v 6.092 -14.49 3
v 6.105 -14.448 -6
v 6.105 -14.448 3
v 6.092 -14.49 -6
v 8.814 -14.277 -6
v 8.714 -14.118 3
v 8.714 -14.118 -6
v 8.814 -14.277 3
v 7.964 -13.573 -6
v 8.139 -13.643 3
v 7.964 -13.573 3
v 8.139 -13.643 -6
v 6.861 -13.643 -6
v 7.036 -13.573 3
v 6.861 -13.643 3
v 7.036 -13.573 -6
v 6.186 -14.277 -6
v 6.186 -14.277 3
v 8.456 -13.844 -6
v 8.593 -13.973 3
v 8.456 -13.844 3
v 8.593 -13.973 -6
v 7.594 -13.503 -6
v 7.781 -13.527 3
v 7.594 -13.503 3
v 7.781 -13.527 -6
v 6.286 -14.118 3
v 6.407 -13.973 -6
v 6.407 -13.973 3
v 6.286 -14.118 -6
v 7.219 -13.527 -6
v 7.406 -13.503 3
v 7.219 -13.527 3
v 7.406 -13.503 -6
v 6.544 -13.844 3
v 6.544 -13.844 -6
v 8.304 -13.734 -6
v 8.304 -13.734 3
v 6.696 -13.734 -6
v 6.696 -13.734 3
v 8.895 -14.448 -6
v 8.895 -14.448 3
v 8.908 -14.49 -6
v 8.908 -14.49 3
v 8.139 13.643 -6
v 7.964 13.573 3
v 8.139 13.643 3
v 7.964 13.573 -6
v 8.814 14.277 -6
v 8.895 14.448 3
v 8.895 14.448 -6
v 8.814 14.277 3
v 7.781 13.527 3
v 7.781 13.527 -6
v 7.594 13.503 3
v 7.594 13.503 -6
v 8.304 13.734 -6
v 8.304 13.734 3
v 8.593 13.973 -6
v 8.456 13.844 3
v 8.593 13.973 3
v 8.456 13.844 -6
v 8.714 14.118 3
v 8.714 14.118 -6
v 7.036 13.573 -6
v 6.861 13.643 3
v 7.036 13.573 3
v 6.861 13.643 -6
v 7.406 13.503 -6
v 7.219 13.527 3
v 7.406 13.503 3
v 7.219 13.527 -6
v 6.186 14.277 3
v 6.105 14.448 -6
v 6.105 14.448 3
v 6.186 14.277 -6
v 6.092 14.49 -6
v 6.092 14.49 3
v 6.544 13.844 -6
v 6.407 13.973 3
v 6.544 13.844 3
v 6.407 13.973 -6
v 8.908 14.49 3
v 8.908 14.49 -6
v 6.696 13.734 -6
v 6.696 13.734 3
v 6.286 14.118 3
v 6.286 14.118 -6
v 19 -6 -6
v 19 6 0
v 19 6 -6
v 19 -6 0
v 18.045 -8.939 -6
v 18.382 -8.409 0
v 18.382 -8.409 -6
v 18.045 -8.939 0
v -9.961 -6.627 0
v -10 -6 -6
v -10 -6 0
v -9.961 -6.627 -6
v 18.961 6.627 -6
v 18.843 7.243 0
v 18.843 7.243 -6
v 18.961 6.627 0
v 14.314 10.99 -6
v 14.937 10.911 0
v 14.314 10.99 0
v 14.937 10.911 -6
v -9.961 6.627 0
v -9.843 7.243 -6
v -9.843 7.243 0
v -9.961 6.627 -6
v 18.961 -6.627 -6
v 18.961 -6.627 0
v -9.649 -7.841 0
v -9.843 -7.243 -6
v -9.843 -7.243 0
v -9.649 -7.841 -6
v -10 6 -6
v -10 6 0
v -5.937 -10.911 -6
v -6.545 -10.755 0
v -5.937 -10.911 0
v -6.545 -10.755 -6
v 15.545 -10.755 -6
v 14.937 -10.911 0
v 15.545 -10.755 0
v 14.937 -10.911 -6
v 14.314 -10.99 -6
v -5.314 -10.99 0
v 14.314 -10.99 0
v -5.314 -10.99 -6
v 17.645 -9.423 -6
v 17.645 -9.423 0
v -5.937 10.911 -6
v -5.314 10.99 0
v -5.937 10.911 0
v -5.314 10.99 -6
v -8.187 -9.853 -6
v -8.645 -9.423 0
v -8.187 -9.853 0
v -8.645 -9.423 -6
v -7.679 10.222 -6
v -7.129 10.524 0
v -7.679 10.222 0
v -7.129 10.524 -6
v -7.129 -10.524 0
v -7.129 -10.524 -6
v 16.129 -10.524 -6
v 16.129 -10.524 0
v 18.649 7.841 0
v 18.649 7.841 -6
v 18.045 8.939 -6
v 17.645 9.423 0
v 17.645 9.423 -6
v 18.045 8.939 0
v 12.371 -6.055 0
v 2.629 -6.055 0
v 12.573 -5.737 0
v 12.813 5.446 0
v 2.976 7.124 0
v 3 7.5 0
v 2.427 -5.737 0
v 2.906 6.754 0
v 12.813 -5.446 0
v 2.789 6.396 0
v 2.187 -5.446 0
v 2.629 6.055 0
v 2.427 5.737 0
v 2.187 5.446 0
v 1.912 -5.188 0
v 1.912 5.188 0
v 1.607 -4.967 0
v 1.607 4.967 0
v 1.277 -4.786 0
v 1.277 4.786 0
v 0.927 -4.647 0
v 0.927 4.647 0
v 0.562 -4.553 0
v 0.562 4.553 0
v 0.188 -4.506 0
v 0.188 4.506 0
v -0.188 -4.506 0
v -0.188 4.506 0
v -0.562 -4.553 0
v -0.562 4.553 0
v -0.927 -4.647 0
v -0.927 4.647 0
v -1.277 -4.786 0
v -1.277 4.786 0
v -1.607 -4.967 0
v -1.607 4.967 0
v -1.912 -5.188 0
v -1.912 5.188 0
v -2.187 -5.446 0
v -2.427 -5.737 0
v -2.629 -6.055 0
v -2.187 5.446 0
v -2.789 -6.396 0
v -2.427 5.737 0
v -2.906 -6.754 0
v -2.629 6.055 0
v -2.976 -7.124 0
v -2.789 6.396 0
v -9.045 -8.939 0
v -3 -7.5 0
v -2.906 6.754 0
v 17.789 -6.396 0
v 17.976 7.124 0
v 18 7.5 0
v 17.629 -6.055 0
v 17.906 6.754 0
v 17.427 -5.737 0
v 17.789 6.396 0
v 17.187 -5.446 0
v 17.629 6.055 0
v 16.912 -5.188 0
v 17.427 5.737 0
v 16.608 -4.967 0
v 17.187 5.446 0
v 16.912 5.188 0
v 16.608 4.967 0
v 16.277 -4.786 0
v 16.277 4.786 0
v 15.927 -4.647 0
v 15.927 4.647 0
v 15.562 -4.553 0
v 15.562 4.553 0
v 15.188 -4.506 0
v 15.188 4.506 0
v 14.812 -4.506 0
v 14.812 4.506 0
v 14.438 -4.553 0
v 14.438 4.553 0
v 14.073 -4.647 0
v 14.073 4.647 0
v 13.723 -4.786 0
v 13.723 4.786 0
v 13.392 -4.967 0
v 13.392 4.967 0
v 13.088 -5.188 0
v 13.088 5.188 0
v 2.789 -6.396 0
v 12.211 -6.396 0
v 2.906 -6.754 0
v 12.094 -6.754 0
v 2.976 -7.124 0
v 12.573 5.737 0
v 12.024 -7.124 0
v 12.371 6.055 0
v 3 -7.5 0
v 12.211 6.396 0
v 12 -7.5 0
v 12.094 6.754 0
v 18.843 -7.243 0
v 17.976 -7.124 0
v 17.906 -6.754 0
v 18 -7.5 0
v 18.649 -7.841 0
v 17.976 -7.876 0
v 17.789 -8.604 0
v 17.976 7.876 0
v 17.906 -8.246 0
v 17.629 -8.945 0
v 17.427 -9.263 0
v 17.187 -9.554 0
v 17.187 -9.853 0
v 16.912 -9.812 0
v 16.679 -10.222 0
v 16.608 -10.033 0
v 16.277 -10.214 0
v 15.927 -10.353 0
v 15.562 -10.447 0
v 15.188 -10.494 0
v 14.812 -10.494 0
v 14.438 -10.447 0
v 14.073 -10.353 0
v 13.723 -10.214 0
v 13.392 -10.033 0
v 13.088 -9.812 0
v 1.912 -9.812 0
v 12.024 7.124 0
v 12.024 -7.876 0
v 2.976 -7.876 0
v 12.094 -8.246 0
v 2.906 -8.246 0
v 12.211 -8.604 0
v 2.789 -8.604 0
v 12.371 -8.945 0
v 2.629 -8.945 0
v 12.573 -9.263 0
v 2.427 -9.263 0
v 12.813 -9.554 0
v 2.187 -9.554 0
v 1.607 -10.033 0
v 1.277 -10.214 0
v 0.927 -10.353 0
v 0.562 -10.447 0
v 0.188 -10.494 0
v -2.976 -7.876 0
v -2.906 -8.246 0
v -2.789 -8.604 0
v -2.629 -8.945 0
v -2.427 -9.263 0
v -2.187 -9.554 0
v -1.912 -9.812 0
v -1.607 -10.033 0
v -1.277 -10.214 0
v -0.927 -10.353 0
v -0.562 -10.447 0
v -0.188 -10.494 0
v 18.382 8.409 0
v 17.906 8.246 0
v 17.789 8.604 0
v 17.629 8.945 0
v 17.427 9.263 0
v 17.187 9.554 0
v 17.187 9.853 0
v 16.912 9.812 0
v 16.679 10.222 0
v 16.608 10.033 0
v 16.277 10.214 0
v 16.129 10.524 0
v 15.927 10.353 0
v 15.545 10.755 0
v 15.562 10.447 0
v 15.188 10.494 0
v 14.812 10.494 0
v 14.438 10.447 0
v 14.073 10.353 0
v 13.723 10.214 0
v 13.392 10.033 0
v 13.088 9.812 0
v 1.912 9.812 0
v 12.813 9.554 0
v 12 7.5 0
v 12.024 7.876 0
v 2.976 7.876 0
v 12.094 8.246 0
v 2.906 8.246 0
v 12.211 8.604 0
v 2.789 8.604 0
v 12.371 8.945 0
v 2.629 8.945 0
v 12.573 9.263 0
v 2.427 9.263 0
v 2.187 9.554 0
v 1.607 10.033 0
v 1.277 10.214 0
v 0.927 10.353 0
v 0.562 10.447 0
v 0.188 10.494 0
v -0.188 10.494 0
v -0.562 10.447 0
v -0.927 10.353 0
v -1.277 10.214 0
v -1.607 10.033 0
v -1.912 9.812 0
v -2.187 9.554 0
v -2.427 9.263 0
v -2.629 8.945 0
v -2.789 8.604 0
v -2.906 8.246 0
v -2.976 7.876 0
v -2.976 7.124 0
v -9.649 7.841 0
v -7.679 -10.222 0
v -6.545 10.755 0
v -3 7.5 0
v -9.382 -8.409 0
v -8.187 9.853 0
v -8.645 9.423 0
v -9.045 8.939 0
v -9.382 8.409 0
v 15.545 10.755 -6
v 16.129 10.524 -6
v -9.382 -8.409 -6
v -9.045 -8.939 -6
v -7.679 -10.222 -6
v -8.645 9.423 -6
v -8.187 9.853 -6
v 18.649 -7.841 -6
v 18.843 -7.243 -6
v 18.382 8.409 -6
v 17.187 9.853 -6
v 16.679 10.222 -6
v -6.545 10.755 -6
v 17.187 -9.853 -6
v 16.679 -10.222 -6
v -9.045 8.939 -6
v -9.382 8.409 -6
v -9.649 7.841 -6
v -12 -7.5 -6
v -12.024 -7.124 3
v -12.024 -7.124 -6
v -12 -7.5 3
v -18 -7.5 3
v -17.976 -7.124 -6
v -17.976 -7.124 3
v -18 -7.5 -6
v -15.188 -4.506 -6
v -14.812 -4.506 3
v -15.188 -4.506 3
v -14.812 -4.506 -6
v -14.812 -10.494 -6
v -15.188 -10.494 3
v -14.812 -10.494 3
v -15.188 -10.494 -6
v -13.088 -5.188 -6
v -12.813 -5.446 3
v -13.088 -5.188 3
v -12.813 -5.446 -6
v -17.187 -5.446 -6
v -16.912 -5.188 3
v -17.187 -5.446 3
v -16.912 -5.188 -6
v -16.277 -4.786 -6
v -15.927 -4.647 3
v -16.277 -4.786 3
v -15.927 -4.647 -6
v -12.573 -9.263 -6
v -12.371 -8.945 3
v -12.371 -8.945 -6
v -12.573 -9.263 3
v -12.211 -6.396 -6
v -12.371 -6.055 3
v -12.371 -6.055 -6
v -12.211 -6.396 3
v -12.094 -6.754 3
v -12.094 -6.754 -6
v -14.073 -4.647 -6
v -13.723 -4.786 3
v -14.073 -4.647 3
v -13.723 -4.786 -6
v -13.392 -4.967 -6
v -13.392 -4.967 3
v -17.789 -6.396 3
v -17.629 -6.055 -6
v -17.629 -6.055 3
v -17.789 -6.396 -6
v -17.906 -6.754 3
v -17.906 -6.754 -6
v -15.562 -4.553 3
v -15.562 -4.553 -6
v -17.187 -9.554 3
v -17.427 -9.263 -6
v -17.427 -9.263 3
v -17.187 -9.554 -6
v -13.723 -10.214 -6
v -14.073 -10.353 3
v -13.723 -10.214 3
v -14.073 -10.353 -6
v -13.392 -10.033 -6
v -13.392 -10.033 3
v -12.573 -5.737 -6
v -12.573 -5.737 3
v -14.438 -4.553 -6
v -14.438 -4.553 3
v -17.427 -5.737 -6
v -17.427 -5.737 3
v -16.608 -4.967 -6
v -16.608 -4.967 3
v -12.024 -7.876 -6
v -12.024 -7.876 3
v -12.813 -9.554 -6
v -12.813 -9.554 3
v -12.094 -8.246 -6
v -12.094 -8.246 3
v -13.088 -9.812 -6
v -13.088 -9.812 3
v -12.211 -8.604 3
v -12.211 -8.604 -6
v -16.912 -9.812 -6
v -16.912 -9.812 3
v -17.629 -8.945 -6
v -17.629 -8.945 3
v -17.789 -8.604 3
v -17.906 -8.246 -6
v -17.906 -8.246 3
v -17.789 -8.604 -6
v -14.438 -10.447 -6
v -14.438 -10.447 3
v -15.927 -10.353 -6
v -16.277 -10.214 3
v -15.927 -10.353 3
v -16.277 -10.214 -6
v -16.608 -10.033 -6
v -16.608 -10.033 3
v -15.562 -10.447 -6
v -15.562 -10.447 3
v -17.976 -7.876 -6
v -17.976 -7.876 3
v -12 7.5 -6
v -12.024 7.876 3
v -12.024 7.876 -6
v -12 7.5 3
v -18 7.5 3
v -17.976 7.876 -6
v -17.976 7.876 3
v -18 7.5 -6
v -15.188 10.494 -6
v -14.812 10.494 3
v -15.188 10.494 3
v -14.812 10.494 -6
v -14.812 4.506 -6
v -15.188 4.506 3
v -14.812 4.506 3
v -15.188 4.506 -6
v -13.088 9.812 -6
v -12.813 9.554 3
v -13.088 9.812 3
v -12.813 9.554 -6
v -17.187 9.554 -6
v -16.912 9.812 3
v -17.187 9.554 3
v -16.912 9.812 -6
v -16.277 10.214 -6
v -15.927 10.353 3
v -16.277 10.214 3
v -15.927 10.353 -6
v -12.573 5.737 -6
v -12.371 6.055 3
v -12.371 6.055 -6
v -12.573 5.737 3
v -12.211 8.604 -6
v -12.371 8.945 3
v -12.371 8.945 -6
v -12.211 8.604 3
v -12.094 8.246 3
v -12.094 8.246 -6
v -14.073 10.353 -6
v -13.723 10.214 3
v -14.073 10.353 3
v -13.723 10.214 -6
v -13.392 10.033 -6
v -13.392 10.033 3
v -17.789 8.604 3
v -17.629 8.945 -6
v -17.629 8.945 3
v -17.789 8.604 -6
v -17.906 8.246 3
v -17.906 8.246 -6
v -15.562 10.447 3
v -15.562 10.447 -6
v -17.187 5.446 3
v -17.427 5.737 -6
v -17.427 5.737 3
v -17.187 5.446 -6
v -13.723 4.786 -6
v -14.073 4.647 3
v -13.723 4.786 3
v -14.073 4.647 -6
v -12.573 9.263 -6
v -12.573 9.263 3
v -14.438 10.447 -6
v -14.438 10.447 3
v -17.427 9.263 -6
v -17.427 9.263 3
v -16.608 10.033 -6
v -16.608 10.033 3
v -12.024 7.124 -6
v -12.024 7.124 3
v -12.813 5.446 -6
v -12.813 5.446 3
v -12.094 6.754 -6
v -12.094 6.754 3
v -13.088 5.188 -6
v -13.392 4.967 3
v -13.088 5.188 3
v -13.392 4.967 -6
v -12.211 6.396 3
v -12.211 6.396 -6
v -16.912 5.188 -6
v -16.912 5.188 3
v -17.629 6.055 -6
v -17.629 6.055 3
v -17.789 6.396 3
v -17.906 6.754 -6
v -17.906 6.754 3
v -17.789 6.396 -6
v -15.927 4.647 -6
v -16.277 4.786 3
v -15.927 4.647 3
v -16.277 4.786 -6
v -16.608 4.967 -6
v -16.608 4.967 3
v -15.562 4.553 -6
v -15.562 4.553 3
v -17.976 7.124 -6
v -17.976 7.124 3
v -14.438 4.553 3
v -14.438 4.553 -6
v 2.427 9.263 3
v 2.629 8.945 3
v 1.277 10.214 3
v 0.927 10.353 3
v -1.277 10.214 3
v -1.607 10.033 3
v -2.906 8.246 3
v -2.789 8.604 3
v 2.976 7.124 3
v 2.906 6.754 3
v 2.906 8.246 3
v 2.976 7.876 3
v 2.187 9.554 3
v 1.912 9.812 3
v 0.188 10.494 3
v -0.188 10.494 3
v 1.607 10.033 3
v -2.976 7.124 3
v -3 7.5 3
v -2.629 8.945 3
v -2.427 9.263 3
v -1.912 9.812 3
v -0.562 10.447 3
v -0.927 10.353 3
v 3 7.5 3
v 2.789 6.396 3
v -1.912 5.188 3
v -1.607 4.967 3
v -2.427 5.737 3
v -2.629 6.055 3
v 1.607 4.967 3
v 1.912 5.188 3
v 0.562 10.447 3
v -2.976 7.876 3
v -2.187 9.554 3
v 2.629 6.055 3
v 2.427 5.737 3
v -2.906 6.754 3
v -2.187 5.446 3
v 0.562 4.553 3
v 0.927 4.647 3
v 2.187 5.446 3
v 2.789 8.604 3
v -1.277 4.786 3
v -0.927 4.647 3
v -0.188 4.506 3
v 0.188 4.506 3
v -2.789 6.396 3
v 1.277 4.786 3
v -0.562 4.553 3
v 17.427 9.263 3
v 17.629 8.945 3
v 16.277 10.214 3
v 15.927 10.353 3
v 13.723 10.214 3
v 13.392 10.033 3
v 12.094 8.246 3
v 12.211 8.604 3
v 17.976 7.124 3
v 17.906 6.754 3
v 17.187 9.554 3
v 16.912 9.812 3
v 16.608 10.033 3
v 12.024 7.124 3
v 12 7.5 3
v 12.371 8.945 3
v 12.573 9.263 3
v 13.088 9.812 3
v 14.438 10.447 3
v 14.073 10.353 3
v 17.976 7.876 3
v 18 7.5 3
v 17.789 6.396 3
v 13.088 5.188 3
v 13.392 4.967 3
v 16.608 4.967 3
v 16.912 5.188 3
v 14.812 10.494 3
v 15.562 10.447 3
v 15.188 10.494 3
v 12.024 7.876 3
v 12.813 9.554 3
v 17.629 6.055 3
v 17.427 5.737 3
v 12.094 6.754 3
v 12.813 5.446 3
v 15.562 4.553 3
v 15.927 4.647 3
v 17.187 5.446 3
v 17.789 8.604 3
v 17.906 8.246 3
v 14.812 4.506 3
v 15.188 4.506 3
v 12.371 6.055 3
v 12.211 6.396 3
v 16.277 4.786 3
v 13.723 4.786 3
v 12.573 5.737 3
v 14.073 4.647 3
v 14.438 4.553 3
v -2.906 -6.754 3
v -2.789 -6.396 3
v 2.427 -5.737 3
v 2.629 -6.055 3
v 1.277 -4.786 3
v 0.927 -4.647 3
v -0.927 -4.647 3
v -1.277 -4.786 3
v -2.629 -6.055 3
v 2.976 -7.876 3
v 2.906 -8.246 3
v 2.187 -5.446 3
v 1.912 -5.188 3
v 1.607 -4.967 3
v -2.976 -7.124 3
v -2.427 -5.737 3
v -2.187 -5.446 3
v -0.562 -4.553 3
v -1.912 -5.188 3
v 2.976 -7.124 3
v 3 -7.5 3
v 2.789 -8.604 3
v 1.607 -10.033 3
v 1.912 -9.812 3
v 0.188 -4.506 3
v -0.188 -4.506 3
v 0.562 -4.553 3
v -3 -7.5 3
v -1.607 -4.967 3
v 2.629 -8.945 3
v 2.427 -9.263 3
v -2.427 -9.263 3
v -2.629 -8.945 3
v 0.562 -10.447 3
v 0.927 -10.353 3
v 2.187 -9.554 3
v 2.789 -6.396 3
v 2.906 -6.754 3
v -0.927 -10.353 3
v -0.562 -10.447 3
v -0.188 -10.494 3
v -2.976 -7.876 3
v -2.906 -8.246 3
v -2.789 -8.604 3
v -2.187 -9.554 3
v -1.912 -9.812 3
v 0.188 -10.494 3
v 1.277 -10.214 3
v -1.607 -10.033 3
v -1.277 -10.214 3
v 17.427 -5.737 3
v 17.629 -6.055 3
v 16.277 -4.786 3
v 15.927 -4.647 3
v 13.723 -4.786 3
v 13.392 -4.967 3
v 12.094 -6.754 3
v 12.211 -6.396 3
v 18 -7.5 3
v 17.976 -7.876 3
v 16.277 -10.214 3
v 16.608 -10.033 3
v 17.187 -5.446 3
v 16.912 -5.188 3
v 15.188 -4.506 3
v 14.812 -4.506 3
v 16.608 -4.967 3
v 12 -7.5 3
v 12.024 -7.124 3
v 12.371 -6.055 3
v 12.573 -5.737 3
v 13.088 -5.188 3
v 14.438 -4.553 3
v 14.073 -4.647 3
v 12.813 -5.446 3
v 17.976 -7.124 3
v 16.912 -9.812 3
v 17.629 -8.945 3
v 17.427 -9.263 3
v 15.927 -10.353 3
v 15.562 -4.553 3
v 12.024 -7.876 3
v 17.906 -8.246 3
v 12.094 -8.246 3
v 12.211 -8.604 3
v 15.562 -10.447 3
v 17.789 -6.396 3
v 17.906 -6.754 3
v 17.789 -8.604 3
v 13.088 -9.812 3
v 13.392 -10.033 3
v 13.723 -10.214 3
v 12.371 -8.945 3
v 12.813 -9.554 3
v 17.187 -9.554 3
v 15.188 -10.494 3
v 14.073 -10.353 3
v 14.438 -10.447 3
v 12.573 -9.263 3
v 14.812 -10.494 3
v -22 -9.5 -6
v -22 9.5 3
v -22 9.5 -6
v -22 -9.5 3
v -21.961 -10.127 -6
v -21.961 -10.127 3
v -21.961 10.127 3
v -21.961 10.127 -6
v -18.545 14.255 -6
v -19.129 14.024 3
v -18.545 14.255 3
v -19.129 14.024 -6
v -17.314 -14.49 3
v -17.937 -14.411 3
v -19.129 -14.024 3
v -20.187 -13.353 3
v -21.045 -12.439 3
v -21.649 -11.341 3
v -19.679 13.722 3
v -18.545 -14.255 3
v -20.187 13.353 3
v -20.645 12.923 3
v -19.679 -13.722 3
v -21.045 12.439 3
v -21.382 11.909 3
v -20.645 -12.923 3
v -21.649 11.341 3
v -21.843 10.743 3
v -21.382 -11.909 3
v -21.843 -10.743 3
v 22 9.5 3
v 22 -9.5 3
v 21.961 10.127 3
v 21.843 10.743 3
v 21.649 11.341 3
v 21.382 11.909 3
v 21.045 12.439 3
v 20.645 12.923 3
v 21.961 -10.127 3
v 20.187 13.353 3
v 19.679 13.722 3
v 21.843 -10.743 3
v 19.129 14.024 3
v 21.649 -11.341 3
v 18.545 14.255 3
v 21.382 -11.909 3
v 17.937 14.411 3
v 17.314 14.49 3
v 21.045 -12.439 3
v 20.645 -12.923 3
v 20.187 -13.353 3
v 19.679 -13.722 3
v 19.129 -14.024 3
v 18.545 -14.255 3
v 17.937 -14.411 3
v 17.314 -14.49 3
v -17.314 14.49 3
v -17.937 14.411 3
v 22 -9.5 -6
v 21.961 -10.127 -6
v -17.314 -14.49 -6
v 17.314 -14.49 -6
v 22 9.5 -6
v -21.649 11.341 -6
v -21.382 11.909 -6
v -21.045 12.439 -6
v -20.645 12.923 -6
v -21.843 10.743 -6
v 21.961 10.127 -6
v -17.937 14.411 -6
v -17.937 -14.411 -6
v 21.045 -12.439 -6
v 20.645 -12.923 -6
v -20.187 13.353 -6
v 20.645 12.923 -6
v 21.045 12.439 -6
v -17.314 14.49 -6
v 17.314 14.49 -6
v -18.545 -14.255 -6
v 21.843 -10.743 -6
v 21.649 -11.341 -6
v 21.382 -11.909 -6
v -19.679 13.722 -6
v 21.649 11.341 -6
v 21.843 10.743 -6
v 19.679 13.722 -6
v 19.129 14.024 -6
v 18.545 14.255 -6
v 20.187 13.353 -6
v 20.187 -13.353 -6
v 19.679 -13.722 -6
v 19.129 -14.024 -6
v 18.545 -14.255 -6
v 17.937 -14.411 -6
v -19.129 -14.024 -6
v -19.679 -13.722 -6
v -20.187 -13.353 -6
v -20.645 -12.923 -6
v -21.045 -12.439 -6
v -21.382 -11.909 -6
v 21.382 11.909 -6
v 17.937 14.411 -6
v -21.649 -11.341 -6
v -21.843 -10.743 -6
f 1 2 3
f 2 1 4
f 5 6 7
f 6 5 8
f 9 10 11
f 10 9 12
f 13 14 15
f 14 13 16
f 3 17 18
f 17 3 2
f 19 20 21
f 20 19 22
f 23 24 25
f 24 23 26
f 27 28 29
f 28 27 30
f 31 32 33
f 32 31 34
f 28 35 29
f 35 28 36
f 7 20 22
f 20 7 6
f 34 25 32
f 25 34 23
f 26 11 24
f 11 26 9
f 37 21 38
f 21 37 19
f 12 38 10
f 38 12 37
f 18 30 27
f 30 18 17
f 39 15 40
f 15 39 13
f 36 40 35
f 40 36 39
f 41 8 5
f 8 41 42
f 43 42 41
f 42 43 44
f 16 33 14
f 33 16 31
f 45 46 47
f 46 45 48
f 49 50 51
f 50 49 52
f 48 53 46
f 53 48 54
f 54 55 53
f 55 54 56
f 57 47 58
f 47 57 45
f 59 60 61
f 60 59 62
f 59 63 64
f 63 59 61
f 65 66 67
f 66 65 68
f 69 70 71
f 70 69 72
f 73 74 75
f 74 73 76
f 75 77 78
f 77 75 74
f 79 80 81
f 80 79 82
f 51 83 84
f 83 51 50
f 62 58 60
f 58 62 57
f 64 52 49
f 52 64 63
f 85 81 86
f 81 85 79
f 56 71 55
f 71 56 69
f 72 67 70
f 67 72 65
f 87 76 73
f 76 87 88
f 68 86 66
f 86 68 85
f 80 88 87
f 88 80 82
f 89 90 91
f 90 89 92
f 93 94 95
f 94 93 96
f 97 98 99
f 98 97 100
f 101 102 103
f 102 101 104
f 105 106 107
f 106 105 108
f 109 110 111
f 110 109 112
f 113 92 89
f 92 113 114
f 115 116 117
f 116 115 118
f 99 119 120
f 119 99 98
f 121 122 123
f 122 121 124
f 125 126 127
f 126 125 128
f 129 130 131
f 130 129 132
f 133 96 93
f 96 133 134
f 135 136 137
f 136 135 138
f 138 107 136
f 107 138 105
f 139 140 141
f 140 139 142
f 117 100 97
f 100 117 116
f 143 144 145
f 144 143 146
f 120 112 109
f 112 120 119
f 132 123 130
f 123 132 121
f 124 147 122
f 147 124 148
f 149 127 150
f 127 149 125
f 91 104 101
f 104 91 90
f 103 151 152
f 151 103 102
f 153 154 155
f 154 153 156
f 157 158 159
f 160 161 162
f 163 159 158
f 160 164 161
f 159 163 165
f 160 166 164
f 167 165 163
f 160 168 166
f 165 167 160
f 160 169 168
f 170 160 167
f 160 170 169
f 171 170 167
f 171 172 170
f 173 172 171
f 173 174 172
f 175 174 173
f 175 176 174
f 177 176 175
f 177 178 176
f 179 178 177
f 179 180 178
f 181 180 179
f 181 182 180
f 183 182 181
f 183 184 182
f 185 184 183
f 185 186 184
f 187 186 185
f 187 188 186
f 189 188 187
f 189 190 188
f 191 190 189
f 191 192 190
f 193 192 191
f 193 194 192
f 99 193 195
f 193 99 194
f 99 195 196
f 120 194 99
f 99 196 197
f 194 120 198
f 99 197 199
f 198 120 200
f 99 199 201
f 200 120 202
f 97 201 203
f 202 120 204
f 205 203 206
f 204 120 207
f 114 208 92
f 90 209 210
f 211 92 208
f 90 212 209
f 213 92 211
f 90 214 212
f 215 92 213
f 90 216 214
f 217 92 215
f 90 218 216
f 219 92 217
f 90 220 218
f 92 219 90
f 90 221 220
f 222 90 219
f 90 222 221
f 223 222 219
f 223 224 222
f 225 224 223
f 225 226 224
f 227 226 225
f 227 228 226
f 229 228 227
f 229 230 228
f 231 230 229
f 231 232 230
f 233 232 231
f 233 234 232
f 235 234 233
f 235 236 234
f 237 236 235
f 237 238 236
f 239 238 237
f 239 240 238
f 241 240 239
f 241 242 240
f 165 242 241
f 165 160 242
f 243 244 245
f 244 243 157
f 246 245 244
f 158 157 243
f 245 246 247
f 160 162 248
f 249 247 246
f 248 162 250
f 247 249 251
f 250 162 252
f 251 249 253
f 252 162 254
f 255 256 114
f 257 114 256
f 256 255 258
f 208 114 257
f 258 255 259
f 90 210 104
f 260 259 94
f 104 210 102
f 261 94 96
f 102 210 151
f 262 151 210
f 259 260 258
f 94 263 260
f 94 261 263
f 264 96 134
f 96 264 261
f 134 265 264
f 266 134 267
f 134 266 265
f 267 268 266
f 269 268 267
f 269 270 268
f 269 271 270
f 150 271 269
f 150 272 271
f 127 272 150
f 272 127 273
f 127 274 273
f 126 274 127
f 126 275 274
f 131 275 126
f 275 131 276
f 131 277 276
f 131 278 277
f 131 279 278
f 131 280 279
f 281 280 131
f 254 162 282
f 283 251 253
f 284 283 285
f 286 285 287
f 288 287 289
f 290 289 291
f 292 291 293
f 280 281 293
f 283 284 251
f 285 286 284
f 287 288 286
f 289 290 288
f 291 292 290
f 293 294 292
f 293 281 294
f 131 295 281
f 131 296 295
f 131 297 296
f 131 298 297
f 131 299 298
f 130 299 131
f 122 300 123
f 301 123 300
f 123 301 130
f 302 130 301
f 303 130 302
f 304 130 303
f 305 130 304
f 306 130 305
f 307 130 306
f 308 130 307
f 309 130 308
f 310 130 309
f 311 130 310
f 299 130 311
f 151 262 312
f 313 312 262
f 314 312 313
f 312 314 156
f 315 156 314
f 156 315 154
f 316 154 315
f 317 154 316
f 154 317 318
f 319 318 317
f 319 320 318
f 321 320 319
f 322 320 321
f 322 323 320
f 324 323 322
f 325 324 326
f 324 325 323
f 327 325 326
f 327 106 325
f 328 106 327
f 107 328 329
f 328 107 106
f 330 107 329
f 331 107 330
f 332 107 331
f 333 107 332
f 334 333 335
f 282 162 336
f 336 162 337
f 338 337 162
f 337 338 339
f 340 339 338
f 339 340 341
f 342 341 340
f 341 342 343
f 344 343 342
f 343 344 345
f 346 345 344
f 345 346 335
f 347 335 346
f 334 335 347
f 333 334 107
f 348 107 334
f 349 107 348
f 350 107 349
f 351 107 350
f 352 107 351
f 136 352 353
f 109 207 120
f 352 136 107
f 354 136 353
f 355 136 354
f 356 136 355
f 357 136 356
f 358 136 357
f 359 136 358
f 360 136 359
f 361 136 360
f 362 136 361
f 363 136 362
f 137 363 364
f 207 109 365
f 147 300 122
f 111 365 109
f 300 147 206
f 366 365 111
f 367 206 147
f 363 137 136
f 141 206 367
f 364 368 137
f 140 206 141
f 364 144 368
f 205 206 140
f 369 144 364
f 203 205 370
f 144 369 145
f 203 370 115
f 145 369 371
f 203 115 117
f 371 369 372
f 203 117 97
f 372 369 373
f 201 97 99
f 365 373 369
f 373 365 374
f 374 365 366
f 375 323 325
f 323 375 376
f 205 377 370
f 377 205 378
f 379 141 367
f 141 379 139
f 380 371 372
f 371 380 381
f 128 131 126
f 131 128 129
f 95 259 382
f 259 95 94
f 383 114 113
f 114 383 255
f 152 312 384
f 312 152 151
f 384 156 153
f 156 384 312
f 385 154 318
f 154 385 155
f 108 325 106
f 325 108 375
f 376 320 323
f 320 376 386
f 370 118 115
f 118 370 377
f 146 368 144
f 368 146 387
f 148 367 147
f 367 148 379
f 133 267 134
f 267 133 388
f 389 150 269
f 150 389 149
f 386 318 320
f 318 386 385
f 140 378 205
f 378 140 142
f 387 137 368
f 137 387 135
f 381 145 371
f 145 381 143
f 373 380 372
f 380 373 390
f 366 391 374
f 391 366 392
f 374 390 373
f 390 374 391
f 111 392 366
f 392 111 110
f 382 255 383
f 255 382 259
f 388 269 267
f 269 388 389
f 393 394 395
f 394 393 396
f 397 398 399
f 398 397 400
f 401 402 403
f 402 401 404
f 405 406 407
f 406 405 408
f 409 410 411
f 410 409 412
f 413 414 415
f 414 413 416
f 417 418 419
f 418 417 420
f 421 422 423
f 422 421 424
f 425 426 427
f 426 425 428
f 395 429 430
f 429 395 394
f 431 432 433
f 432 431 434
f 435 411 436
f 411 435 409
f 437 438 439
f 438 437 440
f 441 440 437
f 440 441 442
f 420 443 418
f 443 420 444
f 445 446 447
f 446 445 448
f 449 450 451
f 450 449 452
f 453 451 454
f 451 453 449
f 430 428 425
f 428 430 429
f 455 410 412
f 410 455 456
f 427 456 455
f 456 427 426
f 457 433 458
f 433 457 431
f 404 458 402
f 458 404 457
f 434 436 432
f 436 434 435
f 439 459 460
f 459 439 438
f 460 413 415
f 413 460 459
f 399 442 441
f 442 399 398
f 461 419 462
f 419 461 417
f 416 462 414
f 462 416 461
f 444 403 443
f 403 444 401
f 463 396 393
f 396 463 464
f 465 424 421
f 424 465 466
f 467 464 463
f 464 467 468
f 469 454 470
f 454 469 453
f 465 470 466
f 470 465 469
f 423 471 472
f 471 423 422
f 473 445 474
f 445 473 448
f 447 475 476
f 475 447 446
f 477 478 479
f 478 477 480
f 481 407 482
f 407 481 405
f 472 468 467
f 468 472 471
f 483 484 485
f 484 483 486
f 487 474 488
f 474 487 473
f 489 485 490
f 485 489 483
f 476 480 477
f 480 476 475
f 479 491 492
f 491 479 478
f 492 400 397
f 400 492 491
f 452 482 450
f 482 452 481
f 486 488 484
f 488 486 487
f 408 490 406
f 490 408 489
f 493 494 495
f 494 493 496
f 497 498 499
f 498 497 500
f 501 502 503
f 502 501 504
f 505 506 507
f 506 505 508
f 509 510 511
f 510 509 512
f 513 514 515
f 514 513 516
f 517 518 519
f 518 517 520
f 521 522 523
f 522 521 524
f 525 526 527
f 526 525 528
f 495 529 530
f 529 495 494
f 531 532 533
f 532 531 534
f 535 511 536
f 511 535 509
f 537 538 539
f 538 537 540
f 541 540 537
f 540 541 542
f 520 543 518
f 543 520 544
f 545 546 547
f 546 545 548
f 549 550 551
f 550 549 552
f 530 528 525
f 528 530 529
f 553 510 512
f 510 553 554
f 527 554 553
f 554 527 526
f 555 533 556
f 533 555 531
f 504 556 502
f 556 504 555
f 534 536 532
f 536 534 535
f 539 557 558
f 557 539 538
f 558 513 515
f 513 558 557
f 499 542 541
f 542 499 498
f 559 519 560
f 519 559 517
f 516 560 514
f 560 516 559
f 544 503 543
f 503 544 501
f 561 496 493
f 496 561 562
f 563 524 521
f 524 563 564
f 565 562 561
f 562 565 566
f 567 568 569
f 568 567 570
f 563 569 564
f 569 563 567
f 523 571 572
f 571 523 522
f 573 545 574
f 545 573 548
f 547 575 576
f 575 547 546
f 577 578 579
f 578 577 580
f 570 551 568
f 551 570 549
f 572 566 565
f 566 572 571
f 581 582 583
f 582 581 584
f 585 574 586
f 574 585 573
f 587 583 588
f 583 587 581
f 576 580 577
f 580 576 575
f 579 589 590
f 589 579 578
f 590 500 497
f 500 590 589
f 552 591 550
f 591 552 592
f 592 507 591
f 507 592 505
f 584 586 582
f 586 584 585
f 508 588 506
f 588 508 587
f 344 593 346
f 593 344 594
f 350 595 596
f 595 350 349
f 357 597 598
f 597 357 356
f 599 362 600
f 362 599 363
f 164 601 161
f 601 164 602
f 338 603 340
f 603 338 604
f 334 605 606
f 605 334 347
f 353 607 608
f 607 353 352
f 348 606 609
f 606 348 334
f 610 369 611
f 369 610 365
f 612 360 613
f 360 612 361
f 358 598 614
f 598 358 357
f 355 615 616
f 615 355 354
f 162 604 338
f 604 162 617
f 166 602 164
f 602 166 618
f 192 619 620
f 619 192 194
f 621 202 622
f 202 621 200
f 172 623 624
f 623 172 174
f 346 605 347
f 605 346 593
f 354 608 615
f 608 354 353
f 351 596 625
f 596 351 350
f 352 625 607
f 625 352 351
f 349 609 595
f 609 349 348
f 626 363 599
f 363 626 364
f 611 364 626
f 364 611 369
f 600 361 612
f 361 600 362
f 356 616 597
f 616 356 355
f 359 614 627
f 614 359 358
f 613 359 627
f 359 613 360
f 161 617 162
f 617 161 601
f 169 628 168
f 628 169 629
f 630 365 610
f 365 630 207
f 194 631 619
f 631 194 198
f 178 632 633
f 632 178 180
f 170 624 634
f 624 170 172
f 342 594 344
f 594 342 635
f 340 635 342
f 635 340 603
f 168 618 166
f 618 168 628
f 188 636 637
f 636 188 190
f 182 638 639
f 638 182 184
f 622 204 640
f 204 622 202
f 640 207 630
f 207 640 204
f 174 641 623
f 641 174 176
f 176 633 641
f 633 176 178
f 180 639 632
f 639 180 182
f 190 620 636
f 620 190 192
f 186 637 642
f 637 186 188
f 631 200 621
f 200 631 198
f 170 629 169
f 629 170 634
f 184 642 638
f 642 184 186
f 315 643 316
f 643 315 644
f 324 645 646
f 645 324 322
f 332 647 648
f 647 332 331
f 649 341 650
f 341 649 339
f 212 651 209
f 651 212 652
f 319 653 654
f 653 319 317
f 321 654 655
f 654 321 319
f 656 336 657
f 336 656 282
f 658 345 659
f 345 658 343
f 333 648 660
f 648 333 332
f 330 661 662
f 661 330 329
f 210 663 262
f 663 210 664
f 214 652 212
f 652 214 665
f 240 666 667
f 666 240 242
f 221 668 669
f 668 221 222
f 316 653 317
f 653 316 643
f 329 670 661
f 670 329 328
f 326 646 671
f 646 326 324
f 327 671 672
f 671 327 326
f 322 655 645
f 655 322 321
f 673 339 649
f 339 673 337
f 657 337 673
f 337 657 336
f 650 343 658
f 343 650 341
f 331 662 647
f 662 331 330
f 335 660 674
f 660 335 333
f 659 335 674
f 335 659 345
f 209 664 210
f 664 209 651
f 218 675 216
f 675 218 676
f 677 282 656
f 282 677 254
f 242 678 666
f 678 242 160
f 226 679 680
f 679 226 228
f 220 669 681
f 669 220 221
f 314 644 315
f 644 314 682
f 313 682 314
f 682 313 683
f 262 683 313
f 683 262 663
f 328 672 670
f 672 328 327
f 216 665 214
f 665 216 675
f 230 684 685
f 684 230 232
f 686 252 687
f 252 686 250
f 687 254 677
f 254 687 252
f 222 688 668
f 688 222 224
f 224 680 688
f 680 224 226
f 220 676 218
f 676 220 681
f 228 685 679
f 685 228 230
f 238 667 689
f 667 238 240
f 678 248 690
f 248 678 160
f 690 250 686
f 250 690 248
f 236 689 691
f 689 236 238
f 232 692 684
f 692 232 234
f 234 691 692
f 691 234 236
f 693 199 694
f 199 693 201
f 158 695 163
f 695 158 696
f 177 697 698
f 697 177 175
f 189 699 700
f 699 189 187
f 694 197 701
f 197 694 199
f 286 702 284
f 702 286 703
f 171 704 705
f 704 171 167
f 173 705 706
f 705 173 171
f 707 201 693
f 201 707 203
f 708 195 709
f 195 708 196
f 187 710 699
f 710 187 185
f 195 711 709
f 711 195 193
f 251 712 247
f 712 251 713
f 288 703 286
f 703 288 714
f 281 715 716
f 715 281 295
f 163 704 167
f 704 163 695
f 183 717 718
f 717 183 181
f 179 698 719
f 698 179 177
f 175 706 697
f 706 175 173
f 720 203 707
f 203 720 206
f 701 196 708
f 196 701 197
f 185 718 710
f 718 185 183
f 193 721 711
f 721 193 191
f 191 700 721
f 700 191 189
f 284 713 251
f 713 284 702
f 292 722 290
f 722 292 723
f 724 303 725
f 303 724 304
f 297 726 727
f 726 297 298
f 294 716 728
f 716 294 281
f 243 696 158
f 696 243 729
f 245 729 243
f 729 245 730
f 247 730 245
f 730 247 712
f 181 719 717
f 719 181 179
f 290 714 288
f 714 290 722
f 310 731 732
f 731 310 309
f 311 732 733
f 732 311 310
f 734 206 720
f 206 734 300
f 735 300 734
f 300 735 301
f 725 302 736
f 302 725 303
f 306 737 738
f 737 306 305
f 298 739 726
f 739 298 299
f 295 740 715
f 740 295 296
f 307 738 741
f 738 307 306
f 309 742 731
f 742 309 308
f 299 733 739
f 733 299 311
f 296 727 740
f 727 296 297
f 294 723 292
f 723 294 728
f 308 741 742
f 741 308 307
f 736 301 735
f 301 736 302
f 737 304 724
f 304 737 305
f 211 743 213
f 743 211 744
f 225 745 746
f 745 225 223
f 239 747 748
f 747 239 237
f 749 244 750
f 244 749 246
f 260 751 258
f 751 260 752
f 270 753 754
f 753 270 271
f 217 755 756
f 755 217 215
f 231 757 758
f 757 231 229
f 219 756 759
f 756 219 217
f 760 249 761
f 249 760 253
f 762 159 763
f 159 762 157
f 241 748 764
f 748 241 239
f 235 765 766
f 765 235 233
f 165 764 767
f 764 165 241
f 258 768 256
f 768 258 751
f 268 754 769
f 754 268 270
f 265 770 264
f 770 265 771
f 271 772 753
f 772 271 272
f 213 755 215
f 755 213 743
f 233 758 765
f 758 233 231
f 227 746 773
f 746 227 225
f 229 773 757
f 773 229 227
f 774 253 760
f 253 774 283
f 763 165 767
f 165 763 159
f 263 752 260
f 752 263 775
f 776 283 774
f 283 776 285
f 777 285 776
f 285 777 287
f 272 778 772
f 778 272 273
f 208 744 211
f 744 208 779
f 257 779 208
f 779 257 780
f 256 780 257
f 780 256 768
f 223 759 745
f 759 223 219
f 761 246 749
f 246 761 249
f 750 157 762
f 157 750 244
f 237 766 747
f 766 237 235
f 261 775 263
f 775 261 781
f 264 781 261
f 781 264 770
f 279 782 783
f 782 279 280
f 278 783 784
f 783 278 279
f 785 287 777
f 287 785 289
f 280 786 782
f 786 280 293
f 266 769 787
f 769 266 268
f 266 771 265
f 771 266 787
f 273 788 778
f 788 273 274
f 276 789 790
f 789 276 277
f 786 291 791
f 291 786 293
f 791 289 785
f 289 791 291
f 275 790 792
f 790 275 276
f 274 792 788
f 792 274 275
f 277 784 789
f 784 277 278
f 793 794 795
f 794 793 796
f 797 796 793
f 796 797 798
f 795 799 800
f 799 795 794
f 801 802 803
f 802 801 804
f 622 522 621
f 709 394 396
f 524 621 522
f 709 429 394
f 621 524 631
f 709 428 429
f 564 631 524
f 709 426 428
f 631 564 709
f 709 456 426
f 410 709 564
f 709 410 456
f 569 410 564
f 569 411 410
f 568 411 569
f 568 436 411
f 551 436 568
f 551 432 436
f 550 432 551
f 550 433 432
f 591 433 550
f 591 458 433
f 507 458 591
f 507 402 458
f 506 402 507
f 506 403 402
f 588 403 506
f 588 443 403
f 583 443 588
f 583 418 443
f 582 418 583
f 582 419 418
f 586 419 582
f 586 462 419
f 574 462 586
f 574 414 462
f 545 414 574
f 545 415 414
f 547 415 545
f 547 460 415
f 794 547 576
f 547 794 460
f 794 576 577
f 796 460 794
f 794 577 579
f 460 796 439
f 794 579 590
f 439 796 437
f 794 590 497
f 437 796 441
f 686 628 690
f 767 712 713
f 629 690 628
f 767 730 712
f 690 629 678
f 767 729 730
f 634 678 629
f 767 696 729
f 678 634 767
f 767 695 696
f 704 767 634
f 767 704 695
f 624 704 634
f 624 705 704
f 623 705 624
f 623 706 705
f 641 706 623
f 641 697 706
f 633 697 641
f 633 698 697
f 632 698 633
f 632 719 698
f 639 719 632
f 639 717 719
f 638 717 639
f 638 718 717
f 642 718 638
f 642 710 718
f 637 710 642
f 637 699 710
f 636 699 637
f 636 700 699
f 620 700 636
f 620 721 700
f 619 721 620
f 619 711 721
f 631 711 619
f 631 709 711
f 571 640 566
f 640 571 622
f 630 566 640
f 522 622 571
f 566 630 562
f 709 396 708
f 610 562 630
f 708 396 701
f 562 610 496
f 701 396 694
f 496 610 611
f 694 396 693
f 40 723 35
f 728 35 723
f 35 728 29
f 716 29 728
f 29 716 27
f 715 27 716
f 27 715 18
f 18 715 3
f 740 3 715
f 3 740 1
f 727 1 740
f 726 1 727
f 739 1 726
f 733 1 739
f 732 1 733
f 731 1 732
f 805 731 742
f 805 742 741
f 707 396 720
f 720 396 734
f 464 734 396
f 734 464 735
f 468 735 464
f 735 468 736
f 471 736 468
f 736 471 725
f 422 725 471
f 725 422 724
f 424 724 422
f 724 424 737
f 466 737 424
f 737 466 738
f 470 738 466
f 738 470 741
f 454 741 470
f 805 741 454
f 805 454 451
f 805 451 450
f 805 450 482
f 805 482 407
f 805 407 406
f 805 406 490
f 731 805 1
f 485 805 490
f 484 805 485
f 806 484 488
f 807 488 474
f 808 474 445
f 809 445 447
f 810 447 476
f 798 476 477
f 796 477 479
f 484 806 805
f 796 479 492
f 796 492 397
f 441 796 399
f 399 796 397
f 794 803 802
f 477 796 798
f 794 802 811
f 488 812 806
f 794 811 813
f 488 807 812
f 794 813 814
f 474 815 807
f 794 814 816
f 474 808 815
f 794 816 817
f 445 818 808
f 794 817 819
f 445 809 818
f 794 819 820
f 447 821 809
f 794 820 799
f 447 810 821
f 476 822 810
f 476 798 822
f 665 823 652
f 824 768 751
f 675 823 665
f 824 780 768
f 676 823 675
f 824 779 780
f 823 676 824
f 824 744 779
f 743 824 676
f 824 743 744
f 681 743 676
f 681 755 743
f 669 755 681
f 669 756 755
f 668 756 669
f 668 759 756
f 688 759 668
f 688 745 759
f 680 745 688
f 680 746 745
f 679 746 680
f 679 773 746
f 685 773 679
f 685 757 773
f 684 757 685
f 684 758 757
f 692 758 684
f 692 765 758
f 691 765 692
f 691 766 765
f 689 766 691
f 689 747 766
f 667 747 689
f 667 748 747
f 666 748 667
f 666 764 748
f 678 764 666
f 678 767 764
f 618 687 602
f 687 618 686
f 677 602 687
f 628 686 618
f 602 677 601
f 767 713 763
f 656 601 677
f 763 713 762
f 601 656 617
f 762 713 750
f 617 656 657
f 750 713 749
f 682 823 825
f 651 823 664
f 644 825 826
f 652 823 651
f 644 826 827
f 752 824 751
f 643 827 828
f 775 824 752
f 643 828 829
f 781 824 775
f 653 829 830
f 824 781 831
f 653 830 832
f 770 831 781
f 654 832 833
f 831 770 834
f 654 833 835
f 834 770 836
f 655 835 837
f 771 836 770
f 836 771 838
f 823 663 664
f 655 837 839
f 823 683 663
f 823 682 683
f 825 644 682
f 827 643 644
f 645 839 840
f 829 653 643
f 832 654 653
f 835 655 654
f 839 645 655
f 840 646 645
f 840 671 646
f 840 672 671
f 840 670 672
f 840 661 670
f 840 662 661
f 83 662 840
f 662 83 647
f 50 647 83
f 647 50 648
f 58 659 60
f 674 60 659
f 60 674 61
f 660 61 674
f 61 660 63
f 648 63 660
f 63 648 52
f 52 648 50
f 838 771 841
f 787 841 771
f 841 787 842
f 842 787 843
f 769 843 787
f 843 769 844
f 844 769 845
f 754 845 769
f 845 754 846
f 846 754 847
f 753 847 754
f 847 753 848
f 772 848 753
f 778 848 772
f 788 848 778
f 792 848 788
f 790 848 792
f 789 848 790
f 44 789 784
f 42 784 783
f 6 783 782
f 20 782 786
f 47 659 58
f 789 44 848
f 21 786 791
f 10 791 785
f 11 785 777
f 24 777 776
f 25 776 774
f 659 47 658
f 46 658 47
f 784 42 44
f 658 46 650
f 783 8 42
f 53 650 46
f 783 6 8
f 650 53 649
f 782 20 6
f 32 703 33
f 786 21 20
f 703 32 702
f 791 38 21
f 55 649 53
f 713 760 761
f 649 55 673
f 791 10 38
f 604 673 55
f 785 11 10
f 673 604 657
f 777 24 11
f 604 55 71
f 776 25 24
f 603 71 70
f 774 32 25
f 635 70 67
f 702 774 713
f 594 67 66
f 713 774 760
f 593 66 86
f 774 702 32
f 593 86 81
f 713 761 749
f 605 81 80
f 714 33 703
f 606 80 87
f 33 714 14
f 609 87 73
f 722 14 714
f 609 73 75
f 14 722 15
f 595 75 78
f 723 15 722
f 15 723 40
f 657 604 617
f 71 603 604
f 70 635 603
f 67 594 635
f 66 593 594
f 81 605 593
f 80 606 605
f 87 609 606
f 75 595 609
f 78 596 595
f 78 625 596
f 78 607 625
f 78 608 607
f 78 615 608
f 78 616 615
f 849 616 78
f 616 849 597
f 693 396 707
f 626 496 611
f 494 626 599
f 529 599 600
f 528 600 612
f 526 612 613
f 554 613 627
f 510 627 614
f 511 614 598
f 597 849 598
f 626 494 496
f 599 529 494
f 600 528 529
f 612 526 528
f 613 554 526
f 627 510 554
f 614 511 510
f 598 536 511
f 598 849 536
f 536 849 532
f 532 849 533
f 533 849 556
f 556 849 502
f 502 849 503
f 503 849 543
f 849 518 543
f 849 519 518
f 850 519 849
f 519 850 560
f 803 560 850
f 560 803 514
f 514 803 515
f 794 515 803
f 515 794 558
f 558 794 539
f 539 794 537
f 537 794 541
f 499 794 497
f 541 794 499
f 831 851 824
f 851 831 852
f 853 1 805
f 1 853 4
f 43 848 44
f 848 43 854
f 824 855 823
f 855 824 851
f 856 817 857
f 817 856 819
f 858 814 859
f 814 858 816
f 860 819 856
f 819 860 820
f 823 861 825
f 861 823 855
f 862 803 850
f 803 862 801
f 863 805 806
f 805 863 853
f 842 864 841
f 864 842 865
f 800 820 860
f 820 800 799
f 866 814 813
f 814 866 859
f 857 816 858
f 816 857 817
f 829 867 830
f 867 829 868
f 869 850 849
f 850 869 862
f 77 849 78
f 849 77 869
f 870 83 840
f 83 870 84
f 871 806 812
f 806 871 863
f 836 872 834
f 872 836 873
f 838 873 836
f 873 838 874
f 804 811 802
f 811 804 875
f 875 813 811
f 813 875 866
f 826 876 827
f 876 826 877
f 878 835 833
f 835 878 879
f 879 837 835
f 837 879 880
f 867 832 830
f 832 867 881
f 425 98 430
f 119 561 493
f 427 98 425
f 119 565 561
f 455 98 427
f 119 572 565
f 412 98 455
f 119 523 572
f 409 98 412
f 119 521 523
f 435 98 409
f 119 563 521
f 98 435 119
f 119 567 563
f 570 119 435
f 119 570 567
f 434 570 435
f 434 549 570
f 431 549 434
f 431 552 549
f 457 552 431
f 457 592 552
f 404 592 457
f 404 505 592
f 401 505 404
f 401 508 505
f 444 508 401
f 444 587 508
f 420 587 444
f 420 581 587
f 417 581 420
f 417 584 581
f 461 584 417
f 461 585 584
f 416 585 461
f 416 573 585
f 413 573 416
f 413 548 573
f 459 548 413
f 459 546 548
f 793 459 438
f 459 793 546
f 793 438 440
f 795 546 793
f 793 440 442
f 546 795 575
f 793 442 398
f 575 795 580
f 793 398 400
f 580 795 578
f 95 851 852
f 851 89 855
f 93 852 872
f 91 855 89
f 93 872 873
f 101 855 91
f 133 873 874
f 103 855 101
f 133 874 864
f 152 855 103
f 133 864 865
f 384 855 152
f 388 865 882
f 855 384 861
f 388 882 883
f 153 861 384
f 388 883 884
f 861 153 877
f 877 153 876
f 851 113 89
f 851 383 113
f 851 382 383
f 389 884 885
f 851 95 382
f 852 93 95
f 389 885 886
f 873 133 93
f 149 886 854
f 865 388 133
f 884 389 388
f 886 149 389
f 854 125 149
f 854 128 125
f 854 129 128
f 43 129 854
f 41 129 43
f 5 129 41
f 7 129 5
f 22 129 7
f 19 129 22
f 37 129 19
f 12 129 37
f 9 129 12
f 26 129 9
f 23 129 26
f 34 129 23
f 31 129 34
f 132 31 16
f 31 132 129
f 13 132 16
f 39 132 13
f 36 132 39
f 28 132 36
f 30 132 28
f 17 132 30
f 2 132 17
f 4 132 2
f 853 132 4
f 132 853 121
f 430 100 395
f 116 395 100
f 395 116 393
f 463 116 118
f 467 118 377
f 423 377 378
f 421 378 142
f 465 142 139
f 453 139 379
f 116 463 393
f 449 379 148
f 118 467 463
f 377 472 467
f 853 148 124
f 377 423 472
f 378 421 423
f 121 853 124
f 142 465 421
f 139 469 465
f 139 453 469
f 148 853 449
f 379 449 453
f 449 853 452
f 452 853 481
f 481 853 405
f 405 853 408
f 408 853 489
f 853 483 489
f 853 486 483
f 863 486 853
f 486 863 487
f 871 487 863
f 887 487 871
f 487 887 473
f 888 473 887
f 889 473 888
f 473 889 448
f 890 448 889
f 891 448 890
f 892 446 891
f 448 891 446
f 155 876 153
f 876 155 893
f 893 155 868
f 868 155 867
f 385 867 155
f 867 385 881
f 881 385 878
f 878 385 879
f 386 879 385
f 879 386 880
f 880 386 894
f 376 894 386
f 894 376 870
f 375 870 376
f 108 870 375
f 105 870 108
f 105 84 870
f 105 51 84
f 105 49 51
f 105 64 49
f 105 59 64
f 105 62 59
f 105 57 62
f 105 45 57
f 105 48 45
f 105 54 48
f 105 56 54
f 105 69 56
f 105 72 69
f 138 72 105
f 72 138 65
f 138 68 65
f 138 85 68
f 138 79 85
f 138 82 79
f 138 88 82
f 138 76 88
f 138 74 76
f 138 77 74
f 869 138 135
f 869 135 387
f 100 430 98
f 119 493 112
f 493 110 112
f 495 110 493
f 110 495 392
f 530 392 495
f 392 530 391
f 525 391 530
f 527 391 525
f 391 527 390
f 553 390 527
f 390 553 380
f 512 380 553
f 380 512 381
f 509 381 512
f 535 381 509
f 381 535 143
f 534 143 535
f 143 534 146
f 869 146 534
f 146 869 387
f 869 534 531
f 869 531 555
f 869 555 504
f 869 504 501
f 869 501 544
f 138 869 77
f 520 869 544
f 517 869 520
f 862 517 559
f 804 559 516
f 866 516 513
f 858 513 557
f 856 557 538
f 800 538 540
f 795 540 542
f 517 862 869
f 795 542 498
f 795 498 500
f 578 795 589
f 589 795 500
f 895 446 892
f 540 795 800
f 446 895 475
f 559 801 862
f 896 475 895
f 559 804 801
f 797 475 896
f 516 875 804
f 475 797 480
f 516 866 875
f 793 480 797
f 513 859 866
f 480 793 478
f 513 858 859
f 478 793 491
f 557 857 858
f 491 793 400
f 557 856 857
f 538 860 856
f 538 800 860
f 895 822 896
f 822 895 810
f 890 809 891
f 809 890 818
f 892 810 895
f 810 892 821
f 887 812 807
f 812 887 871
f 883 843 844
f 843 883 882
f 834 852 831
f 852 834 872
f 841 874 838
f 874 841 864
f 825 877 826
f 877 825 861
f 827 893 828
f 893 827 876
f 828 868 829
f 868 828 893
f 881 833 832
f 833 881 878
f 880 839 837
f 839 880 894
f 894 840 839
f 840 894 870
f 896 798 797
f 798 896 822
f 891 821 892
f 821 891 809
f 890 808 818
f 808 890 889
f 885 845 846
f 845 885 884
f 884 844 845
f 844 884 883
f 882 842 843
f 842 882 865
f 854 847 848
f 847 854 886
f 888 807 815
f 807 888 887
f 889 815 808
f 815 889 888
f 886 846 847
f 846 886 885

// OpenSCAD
$fn = 50;


difference() {
	union() {
		translate(v = [0, 0, -6]) {
			hull() {
				translate(v = [-17.0000000000, 9.5000000000, 0]) {
					cylinder(h = 9, r = 5);
				}
				translate(v = [17.0000000000, 9.5000000000, 0]) {
					cylinder(h = 9, r = 5);
				}
				translate(v = [-17.0000000000, -9.5000000000, 0]) {
					cylinder(h = 9, r = 5);
				}
				translate(v = [17.0000000000, -9.5000000000, 0]) {
					cylinder(h = 9, r = 5);
				}
			}
		}
	}
	union() {
		translate(v = [7.5000000000, -15, -9]) {
			rotate(a = [0, 0, 0]) {
				difference() {
					union() {
						linear_extrude(height = 2.5000000000) {
							polygon(points = [[3.1735000000, 0.0000000000], [1.5867500000, 2.7483316189], [-1.5867500000, 2.7483316189], [-3.1735000000, 0.0000000000], [-1.5867500000, -2.7483316189], [1.5867500000, -2.7483316189]]);
						}
						translate(v = [0, 0, -50.0000000000]) {
							cylinder(h = 100, r = 1.5000000000);
						}
						translate(v = [0, 0, -50.0000000000]) {
							cylinder(h = 100, r = 1.5000000000);
						}
						translate(v = [0, 0, -50.0000000000]) {
							cylinder(h = 100, r = 1.5000000000);
						}
					}
					union();
				}
			}
		}
		translate(v = [7.5000000000, 15, -9]) {
			rotate(a = [0, 0, 0]) {
				difference() {
					union() {
						linear_extrude(height = 2.5000000000) {
							polygon(points = [[3.1735000000, 0.0000000000], [1.5867500000, 2.7483316189], [-1.5867500000, 2.7483316189], [-3.1735000000, 0.0000000000], [-1.5867500000, -2.7483316189], [1.5867500000, -2.7483316189]]);
						}
						translate(v = [0, 0, -50.0000000000]) {
							cylinder(h = 100, r = 1.5000000000);
						}
						translate(v = [0, 0, -50.0000000000]) {
							cylinder(h = 100, r = 1.5000000000);
						}
						translate(v = [0, 0, -50.0000000000]) {
							cylinder(h = 100, r = 1.5000000000);
						}
					}
					union();
				}
			}
		}
		translate(v = [0, 0, -3]) {
			rotate(a = [0, 0, 180]) {
				difference() {
					union() {
						translate(v = [-4.5000000000, 0, -6]) {
							#hull() {
								translate(v = [-9.5000000000, 6.0000000000, 0]) {
									cylinder(h = 9, r = 5);
								}
								translate(v = [9.5000000000, 6.0000000000, 0]) {
									cylinder(h = 9, r = 5);
								}
								translate(v = [-9.5000000000, -6.0000000000, 0]) {
									cylinder(h = 9, r = 5);
								}
								translate(v = [9.5000000000, -6.0000000000, 0]) {
									cylinder(h = 9, r = 5);
								}
							}
						}
					}
					union();
				}
			}
		}
		translate(v = [-15.0000000000, -7.5000000000, -50.0000000000]) {
			cylinder(h = 100, r = 3.0000000000);
		}
		translate(v = [-15.0000000000, 7.5000000000, -50.0000000000]) {
			cylinder(h = 100, r = 3.0000000000);
		}
		translate(v = [-15.0000000000, 7.5000000000, -50.0000000000]) {
			cylinder(h = 100, r = 3.0000000000);
		}
		translate(v = [0.0000000000, 7.5000000000, -50.0000000000]) {
			cylinder(h = 100, r = 3.0000000000);
		}
		translate(v = [15.0000000000, 7.5000000000, -50.0000000000]) {
			cylinder(h = 100, r = 3.0000000000);
		}
		translate(v = [-15.0000000000, -7.5000000000, -50.0000000000]) {
			cylinder(h = 100, r = 3.0000000000);
		}
		translate(v = [0.0000000000, -7.5000000000, -50.0000000000]) {
			cylinder(h = 100, r = 3.0000000000);
		}
		translate(v = [15.0000000000, -7.5000000000, -50.0000000000]) {
			cylinder(h = 100, r = 3.0000000000);
		}
	}
}
